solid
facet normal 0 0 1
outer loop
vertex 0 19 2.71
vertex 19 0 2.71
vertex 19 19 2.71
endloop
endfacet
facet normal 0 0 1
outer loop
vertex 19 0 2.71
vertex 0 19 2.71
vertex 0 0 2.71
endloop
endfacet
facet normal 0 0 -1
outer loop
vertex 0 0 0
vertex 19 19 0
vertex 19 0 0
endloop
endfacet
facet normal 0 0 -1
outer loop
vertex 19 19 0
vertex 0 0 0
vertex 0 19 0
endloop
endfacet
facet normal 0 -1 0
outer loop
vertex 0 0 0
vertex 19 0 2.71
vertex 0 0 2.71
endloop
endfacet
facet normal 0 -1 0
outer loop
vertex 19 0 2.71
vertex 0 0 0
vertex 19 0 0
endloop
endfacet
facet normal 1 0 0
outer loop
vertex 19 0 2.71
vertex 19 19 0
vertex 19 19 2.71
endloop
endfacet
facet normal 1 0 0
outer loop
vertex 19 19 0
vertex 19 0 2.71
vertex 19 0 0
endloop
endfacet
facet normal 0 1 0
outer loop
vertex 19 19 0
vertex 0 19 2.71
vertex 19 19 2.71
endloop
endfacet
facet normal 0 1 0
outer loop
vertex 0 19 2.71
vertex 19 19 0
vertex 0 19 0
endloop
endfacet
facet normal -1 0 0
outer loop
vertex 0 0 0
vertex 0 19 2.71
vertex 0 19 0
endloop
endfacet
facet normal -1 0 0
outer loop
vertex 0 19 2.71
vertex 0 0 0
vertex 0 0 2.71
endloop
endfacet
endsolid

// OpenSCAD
/* Warning, this is a very basic generator with a lot of approximation 
input data : [HBFBGA, NAC, 19x19x2.71mm, 528, , A, C04-25469A]
generated by com.zoubworld.electronics.cad.model3d.Basic
Date : Sun Feb 15 10:50:49 CET 2026
*/

//body
color("black")
translate([0,0,0])
cube([19.0,19.0,2.71], center=false);
